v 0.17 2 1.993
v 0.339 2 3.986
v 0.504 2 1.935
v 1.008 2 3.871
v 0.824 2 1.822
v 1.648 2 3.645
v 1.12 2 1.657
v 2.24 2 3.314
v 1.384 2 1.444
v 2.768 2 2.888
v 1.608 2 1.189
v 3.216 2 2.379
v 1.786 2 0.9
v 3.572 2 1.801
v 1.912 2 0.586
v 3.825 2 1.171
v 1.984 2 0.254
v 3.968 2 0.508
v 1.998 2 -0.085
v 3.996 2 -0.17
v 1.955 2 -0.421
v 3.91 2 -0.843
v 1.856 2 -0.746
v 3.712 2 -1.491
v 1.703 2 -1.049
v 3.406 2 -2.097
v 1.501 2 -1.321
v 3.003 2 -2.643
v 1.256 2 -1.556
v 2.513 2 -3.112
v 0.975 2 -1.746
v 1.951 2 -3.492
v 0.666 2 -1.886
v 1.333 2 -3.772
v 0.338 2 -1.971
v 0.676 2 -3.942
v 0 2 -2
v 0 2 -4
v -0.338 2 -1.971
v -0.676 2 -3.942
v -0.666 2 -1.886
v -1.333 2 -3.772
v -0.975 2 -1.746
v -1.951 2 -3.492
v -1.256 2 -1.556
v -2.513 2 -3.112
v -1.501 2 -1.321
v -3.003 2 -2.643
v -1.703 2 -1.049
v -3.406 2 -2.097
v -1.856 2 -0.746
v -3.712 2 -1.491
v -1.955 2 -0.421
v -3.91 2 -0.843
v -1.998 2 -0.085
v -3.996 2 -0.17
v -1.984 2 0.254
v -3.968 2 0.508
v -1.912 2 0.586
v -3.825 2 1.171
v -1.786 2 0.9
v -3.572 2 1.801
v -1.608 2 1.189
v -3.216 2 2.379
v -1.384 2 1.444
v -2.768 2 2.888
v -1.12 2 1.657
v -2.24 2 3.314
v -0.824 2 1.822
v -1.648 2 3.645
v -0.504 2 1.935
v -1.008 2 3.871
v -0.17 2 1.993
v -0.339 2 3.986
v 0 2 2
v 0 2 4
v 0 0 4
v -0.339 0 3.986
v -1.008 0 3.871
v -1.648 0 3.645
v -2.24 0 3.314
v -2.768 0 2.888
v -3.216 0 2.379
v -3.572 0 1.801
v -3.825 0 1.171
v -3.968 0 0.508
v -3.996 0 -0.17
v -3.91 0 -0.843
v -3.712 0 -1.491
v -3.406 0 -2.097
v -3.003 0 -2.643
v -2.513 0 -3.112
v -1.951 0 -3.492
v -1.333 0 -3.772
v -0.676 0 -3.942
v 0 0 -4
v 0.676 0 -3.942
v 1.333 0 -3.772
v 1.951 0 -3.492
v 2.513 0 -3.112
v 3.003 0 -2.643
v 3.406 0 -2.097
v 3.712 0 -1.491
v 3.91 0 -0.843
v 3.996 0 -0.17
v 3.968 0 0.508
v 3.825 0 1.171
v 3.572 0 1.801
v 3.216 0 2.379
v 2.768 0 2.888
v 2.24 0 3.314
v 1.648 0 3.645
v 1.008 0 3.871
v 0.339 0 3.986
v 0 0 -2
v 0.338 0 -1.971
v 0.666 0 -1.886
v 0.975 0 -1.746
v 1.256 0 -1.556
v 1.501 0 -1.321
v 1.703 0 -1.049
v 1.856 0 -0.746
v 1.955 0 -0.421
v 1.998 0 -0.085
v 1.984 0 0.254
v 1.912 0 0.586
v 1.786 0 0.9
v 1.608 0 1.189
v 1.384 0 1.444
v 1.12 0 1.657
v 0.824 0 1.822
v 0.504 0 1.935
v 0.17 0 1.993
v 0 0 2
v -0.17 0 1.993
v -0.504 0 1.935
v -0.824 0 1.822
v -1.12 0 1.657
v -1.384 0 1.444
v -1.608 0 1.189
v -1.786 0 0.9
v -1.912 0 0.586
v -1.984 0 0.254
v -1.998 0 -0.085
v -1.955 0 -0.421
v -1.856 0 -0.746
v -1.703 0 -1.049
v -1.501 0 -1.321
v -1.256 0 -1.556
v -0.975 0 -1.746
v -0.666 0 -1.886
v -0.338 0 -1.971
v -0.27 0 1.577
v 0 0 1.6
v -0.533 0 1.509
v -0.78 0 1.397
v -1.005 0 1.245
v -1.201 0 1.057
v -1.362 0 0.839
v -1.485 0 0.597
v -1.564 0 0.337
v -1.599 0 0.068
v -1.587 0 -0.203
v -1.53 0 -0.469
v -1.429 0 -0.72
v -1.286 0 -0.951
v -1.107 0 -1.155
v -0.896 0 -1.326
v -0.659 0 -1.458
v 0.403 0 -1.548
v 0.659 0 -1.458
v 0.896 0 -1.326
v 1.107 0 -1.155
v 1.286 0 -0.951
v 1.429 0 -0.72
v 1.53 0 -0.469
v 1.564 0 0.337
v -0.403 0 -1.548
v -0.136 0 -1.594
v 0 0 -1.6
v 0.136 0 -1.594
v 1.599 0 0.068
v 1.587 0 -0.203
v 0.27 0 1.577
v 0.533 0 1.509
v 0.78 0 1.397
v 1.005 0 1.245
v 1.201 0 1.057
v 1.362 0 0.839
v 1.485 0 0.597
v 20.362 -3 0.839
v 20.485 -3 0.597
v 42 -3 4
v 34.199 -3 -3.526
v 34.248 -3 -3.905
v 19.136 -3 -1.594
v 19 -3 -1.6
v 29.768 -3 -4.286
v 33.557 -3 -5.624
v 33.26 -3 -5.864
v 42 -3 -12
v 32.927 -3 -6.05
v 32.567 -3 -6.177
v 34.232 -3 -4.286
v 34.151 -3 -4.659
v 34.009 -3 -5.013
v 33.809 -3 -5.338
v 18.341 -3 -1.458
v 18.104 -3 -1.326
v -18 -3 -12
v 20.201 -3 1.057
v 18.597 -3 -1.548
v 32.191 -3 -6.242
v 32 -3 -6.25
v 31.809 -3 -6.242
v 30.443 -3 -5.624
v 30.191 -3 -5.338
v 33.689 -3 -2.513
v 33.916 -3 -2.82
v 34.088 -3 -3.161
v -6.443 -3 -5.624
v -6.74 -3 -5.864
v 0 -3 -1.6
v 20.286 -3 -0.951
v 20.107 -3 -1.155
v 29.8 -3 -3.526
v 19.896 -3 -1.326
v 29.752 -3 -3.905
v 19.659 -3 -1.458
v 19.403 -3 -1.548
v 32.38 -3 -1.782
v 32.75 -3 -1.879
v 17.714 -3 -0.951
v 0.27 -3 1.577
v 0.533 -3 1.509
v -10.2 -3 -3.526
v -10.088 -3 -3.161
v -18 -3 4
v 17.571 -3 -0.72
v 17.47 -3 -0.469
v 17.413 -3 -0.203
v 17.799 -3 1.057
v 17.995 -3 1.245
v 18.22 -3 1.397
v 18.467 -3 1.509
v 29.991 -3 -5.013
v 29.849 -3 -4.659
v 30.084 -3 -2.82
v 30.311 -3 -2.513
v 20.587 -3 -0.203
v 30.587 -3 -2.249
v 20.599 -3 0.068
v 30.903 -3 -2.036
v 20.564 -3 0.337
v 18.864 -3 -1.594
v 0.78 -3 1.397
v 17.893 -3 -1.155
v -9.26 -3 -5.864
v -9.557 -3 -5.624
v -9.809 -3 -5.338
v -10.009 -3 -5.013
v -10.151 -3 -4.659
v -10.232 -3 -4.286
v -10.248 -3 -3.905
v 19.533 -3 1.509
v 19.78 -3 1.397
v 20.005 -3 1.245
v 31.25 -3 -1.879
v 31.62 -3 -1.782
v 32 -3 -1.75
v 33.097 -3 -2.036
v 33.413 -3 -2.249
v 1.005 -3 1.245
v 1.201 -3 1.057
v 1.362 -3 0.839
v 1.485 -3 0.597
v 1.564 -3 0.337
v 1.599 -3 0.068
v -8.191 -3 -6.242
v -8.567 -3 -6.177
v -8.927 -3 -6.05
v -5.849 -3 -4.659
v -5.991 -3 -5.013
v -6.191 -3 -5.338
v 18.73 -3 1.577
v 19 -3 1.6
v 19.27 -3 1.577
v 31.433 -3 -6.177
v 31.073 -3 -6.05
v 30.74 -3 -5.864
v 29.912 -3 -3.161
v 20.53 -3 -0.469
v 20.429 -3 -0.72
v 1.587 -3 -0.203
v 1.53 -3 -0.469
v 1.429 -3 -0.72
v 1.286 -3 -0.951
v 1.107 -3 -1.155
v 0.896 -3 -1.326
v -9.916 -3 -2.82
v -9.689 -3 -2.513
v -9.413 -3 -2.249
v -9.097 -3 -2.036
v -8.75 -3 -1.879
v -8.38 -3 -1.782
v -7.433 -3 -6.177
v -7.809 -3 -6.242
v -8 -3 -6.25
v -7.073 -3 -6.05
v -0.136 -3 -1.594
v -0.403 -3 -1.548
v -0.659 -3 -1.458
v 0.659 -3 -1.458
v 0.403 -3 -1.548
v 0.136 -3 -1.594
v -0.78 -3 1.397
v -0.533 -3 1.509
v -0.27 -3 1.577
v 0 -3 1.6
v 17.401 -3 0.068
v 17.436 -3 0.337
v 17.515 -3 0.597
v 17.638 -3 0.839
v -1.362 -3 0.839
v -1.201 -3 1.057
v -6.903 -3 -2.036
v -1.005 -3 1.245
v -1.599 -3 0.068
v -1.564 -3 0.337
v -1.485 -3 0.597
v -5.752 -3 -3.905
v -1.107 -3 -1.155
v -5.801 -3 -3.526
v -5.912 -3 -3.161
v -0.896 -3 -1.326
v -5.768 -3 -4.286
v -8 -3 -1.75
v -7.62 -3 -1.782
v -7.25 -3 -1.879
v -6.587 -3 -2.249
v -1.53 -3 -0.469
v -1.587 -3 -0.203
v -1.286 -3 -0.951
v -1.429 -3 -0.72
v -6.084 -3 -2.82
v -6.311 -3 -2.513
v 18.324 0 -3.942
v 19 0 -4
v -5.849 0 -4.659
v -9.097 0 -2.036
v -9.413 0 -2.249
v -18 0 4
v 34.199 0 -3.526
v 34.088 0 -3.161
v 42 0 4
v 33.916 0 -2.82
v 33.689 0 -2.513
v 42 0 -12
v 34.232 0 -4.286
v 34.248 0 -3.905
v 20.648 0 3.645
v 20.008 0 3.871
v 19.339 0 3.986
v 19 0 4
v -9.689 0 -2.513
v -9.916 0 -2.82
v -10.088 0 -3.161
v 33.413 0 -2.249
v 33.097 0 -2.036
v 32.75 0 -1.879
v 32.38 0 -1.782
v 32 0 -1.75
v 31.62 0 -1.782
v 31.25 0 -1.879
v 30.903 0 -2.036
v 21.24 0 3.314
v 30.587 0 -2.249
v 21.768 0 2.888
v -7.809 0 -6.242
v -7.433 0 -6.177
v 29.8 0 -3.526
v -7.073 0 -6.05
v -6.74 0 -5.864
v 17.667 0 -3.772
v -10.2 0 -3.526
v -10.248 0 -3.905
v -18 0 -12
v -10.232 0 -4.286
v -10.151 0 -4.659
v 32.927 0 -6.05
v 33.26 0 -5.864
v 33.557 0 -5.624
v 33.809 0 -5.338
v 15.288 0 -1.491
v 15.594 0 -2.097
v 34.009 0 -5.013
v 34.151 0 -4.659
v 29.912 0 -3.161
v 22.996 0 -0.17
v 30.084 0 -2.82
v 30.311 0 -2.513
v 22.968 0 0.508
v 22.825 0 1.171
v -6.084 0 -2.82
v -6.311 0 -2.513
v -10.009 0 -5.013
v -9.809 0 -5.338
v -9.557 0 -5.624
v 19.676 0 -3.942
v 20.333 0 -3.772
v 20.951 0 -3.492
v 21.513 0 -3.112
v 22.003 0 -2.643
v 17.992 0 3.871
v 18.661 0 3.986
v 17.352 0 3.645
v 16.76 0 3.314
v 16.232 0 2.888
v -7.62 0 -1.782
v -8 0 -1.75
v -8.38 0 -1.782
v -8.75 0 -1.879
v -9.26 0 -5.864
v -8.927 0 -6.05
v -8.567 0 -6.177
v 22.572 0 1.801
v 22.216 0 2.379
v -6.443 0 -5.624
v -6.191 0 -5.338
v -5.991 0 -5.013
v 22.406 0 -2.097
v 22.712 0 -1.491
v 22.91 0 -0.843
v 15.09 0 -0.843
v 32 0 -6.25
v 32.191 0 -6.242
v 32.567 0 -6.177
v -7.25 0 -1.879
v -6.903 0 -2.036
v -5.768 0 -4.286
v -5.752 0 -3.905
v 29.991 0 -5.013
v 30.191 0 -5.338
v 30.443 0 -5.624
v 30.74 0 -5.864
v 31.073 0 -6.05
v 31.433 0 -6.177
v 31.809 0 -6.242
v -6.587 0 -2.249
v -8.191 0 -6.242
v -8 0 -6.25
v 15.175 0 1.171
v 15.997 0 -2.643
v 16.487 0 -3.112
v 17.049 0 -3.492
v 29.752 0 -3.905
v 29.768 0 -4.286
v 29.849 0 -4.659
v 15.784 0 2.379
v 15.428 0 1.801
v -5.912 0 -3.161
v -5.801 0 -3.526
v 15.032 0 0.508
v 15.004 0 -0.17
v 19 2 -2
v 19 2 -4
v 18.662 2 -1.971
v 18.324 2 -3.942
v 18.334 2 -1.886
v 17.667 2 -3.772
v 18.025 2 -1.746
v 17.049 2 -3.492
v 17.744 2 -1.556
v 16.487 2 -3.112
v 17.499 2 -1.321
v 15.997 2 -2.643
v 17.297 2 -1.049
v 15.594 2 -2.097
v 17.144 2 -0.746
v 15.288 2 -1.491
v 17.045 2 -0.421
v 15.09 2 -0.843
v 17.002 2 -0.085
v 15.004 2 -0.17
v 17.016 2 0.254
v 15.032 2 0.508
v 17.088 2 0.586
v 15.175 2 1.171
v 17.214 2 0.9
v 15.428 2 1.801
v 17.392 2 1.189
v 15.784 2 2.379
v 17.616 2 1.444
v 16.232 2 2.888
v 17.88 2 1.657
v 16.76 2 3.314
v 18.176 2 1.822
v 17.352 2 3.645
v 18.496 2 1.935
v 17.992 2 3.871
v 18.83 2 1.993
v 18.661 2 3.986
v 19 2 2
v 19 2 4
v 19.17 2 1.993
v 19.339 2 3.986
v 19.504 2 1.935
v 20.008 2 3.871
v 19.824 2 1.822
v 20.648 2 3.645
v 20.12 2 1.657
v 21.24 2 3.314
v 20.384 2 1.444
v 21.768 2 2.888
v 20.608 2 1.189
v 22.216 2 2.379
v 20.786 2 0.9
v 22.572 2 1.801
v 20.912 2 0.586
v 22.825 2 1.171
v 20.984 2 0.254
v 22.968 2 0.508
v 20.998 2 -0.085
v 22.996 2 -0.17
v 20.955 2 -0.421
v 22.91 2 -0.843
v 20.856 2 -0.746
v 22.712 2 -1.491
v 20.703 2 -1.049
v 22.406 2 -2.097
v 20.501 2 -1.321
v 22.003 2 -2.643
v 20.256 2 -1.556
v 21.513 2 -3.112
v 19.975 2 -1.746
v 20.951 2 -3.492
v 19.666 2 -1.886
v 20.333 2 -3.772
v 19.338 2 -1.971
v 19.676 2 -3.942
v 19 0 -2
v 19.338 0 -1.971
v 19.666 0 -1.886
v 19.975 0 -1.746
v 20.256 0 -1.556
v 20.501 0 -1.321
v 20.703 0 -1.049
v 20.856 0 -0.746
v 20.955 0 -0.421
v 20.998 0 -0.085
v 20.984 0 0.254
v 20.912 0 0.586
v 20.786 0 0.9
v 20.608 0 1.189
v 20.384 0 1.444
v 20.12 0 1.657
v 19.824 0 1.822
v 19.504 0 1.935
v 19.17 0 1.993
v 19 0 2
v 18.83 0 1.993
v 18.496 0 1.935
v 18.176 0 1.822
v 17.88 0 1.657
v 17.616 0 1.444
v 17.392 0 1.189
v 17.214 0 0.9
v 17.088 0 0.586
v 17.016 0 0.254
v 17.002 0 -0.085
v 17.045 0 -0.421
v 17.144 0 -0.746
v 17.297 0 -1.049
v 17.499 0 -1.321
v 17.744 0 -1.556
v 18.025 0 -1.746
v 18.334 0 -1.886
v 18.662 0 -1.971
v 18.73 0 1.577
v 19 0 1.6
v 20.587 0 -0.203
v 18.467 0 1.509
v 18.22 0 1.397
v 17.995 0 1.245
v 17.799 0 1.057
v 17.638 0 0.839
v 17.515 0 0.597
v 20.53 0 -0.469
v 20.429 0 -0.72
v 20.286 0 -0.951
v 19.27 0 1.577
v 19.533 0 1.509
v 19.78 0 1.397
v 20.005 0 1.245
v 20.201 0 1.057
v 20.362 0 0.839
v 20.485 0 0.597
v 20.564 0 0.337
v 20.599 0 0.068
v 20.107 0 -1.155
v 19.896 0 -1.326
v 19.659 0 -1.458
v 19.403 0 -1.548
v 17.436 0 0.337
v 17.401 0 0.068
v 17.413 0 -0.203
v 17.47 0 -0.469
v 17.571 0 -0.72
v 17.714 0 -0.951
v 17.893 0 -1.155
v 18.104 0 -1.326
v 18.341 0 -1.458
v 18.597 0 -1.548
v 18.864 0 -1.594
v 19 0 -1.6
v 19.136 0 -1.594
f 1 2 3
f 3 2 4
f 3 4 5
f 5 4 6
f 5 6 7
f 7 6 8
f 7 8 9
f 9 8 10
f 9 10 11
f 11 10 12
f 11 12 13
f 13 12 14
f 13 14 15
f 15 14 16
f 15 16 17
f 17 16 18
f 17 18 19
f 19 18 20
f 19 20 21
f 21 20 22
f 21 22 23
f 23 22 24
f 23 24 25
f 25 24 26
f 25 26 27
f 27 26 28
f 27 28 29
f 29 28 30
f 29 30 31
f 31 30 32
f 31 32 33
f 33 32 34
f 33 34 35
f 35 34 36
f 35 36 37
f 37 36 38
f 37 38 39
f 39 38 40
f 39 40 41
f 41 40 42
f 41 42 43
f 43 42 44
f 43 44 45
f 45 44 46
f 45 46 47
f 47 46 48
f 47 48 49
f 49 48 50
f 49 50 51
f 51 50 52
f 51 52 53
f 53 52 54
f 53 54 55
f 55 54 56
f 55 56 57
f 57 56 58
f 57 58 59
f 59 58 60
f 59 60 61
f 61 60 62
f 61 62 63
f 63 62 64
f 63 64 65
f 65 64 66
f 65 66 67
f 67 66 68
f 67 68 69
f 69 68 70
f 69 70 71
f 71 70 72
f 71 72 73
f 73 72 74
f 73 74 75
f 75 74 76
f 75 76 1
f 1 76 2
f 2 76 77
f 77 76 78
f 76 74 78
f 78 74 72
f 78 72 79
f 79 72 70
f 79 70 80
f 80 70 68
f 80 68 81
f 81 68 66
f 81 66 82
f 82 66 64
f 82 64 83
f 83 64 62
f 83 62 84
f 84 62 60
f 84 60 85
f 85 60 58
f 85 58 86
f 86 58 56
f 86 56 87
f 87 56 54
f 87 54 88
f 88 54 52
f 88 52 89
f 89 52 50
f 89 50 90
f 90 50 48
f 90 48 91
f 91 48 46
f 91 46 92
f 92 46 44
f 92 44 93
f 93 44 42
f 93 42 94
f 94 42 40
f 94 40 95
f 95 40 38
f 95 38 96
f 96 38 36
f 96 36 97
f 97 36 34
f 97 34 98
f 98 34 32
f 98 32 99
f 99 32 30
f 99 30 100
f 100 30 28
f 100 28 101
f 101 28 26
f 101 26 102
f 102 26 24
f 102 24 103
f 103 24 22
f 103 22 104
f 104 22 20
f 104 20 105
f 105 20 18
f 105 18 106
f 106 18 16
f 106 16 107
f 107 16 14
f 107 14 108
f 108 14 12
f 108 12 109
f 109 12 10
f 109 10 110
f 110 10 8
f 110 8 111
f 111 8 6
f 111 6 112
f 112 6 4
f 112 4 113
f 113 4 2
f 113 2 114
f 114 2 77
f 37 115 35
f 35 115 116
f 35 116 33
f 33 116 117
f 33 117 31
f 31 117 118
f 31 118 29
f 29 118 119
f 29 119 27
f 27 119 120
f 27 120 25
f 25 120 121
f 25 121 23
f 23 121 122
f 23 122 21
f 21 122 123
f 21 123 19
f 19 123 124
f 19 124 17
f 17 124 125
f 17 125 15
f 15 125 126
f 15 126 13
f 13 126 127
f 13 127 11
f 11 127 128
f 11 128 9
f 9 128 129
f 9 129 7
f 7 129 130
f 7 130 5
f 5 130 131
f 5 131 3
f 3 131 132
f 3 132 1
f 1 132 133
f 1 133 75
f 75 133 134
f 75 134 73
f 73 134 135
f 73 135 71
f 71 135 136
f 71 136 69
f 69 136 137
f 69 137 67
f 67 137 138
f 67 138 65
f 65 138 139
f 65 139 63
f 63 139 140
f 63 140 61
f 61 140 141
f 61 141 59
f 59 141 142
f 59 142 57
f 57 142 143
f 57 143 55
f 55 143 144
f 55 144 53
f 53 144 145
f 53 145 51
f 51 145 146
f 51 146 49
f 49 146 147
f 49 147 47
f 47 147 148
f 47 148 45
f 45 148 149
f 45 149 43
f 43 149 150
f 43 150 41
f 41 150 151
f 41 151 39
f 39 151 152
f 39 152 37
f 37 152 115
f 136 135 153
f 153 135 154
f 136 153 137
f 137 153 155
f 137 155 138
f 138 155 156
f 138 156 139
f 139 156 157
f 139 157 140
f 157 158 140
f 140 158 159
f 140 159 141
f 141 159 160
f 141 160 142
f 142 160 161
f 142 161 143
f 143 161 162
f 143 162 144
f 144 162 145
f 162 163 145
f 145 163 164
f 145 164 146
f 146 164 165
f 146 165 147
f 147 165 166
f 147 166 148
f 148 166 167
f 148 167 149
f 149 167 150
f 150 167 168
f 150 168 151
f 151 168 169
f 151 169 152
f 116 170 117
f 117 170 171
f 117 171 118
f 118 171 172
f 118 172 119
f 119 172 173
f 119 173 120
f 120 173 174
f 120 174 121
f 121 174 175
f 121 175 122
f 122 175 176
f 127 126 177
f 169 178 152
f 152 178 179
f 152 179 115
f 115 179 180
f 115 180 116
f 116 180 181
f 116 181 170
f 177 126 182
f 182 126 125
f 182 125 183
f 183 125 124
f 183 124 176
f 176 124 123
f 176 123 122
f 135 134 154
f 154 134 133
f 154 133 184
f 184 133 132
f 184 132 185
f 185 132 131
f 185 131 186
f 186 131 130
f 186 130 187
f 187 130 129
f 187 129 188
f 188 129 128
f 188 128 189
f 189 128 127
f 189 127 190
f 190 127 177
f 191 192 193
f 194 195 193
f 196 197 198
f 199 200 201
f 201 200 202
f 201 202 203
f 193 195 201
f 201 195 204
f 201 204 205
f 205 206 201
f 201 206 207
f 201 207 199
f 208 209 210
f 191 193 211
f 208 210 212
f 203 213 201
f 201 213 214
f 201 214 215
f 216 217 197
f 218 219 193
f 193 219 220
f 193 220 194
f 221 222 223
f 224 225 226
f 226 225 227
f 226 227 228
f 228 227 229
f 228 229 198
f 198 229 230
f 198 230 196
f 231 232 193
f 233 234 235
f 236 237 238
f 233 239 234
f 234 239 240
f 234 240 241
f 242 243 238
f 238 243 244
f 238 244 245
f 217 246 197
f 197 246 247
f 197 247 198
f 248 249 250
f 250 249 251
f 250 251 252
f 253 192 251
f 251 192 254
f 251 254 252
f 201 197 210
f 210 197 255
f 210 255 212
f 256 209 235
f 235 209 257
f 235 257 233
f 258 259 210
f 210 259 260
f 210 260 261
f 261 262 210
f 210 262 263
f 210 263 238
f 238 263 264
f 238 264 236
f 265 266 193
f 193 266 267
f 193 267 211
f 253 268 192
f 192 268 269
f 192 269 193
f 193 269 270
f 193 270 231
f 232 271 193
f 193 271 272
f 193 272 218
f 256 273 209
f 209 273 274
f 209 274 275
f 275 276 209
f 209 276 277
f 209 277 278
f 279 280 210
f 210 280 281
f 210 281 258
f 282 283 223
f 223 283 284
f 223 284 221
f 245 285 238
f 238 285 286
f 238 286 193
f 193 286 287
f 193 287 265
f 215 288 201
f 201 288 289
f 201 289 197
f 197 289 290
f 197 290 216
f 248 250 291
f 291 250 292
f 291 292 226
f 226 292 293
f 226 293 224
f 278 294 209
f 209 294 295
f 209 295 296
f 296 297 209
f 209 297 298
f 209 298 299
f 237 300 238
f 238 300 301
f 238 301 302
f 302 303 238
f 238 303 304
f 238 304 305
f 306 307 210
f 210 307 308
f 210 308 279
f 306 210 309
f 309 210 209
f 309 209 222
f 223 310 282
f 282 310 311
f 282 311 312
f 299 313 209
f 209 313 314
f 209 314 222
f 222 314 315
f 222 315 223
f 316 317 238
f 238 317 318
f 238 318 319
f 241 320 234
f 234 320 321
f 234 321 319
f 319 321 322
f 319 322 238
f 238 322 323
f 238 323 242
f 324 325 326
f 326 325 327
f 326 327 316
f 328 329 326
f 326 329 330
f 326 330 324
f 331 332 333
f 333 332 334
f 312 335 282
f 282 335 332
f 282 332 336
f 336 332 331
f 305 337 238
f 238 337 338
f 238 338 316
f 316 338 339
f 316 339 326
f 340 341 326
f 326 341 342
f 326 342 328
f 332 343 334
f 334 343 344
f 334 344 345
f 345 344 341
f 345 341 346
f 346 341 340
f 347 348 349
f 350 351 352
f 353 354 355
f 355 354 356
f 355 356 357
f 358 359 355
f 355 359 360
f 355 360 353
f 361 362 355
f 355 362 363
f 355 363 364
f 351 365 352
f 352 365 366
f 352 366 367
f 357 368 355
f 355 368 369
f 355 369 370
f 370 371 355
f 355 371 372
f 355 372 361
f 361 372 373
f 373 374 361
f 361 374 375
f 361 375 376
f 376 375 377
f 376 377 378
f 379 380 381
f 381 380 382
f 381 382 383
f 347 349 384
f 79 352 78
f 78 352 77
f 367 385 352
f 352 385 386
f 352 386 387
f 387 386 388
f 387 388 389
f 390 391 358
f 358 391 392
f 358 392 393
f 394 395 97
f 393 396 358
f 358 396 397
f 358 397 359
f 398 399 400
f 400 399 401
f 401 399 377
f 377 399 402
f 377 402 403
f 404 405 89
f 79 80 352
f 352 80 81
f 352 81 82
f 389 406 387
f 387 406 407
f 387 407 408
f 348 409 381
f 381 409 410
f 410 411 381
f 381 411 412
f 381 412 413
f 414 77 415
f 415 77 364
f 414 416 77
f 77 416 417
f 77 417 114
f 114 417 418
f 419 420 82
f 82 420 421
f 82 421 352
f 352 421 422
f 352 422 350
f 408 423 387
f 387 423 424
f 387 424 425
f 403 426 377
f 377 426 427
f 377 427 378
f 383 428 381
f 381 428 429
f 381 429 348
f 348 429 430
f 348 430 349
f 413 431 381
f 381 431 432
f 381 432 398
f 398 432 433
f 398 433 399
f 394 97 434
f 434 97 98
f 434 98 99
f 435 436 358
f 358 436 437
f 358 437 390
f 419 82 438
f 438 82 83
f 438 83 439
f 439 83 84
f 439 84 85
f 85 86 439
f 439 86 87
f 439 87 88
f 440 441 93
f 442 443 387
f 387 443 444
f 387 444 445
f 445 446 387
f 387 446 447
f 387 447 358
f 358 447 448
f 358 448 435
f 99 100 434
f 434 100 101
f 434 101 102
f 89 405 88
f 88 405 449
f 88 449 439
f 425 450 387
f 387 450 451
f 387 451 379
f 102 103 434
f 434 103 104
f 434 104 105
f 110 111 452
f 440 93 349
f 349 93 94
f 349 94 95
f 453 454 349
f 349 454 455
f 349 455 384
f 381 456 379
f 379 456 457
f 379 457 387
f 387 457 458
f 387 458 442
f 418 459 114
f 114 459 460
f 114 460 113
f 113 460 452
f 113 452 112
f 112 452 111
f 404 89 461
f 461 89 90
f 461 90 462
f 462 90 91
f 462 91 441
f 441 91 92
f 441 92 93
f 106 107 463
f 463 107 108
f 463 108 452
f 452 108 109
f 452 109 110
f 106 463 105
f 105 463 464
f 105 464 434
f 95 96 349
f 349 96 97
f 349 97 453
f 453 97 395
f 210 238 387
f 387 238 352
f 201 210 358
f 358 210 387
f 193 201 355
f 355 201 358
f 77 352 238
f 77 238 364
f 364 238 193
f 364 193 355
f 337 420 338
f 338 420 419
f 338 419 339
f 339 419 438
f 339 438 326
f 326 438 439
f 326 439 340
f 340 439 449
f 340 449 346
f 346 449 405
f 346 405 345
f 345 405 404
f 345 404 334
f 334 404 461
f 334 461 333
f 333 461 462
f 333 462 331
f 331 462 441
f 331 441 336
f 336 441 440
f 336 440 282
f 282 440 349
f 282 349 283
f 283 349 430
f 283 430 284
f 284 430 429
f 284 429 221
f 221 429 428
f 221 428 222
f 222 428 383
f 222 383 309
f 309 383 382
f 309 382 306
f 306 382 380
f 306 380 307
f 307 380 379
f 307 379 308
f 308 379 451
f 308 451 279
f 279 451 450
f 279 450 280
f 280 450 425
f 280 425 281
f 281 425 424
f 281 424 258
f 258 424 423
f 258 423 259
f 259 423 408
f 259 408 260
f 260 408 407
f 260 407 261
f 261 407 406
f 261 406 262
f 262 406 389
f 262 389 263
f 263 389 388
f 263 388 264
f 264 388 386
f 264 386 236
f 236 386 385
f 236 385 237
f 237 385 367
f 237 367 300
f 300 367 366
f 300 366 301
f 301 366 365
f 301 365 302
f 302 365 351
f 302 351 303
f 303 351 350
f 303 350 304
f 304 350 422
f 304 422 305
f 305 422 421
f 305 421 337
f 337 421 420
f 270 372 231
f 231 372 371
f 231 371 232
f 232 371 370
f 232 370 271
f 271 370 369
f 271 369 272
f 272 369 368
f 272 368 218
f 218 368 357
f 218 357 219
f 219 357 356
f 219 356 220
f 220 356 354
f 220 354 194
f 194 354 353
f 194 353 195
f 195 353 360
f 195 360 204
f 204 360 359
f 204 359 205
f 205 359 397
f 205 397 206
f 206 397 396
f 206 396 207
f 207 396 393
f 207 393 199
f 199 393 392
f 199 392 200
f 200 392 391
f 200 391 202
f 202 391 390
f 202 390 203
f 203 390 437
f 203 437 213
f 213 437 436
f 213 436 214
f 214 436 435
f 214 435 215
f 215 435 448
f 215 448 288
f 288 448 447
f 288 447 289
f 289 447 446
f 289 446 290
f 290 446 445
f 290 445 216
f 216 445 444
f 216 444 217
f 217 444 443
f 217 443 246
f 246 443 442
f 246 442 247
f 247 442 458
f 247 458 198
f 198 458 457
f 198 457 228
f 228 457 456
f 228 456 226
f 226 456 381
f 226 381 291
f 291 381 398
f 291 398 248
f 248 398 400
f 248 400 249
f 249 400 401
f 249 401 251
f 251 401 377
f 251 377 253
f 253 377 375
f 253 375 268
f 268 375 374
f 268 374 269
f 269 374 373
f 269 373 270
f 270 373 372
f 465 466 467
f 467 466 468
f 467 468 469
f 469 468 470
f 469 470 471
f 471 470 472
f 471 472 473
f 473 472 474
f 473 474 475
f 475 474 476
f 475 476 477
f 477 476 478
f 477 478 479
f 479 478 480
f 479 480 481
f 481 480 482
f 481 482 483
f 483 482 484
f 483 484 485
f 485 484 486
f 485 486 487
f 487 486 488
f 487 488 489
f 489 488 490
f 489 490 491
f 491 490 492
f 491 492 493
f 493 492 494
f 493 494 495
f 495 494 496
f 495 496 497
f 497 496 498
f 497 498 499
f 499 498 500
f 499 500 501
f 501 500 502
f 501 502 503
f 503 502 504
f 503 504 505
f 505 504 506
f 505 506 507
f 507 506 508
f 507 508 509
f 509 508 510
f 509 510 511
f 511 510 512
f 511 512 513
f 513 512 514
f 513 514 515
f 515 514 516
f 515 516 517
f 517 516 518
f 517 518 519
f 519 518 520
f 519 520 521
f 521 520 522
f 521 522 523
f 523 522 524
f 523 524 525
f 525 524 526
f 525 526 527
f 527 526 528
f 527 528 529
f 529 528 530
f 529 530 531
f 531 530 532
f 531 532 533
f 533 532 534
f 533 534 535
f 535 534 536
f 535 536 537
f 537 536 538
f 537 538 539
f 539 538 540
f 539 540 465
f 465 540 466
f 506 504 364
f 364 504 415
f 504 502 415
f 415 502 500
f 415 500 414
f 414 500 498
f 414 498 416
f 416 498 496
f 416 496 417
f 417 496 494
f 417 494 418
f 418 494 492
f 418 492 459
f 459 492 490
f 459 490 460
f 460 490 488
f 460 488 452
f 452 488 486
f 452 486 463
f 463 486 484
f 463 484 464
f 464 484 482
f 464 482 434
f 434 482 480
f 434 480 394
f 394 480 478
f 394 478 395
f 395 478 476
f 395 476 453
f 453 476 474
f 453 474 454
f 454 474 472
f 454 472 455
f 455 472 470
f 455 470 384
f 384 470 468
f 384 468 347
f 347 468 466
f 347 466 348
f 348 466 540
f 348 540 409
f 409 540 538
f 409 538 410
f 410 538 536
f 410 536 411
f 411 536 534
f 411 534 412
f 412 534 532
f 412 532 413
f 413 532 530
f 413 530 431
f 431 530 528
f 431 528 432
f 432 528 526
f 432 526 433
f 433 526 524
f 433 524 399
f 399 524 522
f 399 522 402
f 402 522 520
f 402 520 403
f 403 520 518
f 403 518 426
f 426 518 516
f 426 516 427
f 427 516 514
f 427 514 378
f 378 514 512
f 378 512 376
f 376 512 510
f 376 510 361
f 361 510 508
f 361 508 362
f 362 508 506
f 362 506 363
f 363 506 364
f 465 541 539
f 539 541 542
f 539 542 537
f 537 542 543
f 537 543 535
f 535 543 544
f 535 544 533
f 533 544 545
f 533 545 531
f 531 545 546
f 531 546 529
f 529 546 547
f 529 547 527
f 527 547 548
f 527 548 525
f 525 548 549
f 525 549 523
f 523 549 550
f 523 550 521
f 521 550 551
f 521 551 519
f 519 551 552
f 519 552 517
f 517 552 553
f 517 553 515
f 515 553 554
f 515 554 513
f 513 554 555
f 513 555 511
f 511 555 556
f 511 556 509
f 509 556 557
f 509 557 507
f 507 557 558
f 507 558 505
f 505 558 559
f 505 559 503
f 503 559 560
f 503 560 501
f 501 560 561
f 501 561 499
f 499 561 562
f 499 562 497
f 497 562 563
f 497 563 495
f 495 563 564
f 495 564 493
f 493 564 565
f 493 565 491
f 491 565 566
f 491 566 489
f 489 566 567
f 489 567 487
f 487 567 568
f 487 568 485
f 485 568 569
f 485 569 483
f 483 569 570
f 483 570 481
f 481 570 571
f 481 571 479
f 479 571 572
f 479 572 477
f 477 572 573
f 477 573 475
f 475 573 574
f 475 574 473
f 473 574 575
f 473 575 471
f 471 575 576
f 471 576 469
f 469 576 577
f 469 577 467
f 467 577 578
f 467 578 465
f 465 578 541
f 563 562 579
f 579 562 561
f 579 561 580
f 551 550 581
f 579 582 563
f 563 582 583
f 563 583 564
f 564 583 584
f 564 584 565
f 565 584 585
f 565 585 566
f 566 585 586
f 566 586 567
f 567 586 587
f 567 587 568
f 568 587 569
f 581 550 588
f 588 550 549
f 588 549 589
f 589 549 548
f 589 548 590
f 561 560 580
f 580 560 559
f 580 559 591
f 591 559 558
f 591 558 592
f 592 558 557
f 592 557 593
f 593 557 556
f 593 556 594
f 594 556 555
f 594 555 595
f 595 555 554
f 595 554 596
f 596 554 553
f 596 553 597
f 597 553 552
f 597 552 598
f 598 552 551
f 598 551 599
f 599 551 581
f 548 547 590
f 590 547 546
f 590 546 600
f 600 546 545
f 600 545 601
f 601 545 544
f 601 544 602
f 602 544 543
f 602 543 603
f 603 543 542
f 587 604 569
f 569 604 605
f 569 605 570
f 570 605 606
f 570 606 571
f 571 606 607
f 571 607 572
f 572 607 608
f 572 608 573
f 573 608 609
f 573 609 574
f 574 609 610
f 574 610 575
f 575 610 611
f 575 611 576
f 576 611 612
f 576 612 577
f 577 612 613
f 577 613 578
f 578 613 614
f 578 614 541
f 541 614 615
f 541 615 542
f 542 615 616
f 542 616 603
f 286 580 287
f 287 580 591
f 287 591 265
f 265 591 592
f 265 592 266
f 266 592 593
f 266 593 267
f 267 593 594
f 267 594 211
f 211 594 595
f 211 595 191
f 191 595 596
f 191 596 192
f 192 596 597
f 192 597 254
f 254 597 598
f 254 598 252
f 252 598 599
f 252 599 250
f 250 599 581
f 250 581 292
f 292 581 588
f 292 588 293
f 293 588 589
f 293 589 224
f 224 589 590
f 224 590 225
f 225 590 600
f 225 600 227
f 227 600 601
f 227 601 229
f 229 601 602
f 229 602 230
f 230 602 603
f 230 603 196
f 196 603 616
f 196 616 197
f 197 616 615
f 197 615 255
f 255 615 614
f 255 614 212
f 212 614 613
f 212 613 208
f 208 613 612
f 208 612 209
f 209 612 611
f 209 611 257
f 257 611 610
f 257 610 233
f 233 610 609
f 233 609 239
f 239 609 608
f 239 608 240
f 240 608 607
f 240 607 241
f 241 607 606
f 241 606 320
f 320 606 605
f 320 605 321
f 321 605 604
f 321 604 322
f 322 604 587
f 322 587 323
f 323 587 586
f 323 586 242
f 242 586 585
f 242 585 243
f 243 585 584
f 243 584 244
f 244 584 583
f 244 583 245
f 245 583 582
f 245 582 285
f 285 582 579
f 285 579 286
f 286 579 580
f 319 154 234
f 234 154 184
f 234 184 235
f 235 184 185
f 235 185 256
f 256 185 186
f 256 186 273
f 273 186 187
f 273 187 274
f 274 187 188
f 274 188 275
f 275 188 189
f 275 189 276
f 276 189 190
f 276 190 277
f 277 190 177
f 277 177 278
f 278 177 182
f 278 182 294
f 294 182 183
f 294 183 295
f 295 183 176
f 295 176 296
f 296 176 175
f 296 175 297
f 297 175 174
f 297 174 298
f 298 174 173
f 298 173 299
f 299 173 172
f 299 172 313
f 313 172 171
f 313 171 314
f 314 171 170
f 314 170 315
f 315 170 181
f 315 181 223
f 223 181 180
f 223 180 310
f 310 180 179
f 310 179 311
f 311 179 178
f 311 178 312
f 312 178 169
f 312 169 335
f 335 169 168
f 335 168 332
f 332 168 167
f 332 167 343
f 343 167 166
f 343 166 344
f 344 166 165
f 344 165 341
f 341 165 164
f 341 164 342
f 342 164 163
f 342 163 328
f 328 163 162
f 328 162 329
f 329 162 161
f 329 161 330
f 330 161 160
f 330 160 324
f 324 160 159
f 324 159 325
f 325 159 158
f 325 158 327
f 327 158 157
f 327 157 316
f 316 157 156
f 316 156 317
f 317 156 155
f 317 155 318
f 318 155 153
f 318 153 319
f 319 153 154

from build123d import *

# Parameters (mm, degrees)
SKETCH1_R             = 4
SKETCH1_R_2           = 2
BOSS_EXTRUDE1_DEPTH   = 2
BOSS_EXTRUDE1_2_DEPTH = 2
SKETCH2_W             = 60
SKETCH2_H             = 16
SKETCH2_R             = 2.25
BOSS_EXTRUDE2_DEPTH   = 3
SKETCH3_R             = 1.6
CUT_EXTRUDE1_DEPTH    = 10


with BuildPart() as part:
    # Sketch1 → Boss-Extrude1 (new body)
    with BuildSketch(Plane(origin=(0, 0, 0), x_dir=(1, 0, 0), z_dir=(0, 1, 0))):
        Circle(SKETCH1_R)
        Circle(SKETCH1_R_2, mode=Mode.SUBTRACT)
    extrude(amount=BOSS_EXTRUDE1_DEPTH)



with BuildPart() as body_2:
    # Sketch1 → Boss-Extrude1 2 (new body)
    with BuildSketch(Plane(origin=(0, 0, 0), x_dir=(1, 0, 0), z_dir=(0, 1, 0))):
        with Locations((19, 0)):
            Circle(SKETCH1_R)
        with Locations((19, 0)):
            Circle(SKETCH1_R_2, mode=Mode.SUBTRACT)
    extrude(amount=BOSS_EXTRUDE1_2_DEPTH)


with BuildPart() as part_1:
    add(part.part)

    add(body_2.part)  # Boss-Extrude2 merges body 2
    # Sketch2 → Boss-Extrude2 (add)
    with BuildSketch(Plane.XZ):
        with Locations((12, -4)):
            Rectangle(SKETCH2_W, SKETCH2_H)
        with Locations((-8, -4)):
            Circle(SKETCH2_R, mode=Mode.SUBTRACT)
        with Locations((32, -4)):
            Circle(SKETCH2_R, mode=Mode.SUBTRACT)
    extrude(amount=BOSS_EXTRUDE2_DEPTH)

    # Sketch3 → Cut-Extrude1 (cut)
    with BuildSketch(Plane(origin=(0, 2, 0), x_dir=(1, 0, 0), z_dir=(0, 1, 0))):
        Circle(SKETCH3_R)
        with Locations((19, 0)):
            Circle(SKETCH3_R)
    extrude(amount=-CUT_EXTRUDE1_DEPTH, mode=Mode.SUBTRACT)


solid = part_1.part
